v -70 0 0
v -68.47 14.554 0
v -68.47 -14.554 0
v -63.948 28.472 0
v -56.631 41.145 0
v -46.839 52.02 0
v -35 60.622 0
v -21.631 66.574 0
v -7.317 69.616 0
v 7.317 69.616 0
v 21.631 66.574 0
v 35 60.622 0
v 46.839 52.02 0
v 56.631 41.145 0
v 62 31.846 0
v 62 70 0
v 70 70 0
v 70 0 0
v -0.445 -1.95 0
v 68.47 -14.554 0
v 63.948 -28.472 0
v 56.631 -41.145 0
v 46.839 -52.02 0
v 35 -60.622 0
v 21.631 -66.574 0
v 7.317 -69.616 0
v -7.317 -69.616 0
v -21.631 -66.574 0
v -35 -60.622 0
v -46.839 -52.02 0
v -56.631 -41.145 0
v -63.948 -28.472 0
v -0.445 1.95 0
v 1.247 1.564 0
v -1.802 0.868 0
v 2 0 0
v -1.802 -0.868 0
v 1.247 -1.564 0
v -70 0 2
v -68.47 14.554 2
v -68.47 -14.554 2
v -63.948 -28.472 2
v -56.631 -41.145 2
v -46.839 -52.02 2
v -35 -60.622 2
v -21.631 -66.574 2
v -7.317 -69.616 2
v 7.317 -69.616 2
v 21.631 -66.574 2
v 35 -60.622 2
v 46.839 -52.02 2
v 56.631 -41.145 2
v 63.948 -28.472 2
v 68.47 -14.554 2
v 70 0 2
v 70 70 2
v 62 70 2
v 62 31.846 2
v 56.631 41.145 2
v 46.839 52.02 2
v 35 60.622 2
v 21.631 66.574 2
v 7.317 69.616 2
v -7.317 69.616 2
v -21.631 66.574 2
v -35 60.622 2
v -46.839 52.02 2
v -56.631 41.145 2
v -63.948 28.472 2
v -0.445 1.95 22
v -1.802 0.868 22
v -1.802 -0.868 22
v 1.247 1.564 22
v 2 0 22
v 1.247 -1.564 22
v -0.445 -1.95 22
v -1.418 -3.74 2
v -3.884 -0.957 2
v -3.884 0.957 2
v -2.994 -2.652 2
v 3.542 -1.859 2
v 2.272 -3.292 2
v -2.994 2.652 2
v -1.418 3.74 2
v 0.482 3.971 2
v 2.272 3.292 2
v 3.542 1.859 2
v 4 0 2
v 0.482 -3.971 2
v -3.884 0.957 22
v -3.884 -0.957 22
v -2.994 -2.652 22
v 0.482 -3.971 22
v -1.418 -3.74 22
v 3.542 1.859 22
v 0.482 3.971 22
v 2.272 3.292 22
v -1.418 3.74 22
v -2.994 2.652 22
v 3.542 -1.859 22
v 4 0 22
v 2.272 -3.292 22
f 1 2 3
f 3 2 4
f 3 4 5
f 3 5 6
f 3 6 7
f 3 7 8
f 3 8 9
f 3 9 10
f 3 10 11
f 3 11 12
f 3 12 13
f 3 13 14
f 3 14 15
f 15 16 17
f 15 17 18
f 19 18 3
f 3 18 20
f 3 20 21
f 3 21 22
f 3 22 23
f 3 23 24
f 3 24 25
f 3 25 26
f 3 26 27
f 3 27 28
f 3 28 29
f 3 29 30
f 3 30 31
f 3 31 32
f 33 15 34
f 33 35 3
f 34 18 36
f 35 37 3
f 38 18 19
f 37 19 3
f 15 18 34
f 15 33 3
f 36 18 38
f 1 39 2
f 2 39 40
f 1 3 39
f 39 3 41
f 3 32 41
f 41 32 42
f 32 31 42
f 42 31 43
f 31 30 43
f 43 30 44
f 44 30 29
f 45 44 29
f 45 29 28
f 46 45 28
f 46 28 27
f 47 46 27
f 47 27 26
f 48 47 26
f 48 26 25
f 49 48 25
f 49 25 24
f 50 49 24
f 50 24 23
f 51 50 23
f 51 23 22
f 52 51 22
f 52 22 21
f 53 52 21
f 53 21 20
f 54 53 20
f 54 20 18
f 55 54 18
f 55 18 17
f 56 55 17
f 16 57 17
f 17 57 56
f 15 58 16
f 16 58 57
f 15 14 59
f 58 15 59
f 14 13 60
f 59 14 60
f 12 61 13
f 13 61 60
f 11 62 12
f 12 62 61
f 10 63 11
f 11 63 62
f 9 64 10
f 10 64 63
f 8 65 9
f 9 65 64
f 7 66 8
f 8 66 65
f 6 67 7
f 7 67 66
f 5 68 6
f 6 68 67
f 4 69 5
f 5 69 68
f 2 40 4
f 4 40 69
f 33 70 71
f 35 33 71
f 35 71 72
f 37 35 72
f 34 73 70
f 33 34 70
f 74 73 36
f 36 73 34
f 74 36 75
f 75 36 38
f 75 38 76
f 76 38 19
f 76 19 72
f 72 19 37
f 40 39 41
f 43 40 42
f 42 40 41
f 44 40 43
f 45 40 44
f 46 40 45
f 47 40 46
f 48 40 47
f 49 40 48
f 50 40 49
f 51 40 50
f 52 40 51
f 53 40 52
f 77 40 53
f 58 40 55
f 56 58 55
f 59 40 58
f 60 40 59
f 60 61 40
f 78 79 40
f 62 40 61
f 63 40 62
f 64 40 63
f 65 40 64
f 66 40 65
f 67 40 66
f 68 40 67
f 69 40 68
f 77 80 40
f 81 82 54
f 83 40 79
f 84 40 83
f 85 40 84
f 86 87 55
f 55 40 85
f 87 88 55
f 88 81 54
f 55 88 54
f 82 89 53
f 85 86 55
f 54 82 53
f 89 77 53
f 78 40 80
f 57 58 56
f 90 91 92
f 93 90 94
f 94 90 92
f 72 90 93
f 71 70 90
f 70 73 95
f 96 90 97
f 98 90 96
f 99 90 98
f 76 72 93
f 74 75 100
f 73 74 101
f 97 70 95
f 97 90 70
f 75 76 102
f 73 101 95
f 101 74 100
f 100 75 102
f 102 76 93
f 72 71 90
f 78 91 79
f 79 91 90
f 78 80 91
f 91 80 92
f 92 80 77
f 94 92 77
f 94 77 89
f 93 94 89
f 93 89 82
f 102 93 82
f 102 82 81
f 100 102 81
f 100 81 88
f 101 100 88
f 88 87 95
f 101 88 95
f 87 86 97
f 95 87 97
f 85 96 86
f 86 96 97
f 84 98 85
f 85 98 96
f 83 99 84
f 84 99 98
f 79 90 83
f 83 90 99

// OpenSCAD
difference() {
union() {
union() {
translate([0,0,0]) cylinder(2.0,70,70,center=false); 
translate([62,0,0]) cube([8,70,2],center=false); 
}
translate([0,0,2]) cylinder(20.0,4,4,center=false); 
}
translate([0,0,-2]) cylinder(26.0,2,2,center=false); 
}
